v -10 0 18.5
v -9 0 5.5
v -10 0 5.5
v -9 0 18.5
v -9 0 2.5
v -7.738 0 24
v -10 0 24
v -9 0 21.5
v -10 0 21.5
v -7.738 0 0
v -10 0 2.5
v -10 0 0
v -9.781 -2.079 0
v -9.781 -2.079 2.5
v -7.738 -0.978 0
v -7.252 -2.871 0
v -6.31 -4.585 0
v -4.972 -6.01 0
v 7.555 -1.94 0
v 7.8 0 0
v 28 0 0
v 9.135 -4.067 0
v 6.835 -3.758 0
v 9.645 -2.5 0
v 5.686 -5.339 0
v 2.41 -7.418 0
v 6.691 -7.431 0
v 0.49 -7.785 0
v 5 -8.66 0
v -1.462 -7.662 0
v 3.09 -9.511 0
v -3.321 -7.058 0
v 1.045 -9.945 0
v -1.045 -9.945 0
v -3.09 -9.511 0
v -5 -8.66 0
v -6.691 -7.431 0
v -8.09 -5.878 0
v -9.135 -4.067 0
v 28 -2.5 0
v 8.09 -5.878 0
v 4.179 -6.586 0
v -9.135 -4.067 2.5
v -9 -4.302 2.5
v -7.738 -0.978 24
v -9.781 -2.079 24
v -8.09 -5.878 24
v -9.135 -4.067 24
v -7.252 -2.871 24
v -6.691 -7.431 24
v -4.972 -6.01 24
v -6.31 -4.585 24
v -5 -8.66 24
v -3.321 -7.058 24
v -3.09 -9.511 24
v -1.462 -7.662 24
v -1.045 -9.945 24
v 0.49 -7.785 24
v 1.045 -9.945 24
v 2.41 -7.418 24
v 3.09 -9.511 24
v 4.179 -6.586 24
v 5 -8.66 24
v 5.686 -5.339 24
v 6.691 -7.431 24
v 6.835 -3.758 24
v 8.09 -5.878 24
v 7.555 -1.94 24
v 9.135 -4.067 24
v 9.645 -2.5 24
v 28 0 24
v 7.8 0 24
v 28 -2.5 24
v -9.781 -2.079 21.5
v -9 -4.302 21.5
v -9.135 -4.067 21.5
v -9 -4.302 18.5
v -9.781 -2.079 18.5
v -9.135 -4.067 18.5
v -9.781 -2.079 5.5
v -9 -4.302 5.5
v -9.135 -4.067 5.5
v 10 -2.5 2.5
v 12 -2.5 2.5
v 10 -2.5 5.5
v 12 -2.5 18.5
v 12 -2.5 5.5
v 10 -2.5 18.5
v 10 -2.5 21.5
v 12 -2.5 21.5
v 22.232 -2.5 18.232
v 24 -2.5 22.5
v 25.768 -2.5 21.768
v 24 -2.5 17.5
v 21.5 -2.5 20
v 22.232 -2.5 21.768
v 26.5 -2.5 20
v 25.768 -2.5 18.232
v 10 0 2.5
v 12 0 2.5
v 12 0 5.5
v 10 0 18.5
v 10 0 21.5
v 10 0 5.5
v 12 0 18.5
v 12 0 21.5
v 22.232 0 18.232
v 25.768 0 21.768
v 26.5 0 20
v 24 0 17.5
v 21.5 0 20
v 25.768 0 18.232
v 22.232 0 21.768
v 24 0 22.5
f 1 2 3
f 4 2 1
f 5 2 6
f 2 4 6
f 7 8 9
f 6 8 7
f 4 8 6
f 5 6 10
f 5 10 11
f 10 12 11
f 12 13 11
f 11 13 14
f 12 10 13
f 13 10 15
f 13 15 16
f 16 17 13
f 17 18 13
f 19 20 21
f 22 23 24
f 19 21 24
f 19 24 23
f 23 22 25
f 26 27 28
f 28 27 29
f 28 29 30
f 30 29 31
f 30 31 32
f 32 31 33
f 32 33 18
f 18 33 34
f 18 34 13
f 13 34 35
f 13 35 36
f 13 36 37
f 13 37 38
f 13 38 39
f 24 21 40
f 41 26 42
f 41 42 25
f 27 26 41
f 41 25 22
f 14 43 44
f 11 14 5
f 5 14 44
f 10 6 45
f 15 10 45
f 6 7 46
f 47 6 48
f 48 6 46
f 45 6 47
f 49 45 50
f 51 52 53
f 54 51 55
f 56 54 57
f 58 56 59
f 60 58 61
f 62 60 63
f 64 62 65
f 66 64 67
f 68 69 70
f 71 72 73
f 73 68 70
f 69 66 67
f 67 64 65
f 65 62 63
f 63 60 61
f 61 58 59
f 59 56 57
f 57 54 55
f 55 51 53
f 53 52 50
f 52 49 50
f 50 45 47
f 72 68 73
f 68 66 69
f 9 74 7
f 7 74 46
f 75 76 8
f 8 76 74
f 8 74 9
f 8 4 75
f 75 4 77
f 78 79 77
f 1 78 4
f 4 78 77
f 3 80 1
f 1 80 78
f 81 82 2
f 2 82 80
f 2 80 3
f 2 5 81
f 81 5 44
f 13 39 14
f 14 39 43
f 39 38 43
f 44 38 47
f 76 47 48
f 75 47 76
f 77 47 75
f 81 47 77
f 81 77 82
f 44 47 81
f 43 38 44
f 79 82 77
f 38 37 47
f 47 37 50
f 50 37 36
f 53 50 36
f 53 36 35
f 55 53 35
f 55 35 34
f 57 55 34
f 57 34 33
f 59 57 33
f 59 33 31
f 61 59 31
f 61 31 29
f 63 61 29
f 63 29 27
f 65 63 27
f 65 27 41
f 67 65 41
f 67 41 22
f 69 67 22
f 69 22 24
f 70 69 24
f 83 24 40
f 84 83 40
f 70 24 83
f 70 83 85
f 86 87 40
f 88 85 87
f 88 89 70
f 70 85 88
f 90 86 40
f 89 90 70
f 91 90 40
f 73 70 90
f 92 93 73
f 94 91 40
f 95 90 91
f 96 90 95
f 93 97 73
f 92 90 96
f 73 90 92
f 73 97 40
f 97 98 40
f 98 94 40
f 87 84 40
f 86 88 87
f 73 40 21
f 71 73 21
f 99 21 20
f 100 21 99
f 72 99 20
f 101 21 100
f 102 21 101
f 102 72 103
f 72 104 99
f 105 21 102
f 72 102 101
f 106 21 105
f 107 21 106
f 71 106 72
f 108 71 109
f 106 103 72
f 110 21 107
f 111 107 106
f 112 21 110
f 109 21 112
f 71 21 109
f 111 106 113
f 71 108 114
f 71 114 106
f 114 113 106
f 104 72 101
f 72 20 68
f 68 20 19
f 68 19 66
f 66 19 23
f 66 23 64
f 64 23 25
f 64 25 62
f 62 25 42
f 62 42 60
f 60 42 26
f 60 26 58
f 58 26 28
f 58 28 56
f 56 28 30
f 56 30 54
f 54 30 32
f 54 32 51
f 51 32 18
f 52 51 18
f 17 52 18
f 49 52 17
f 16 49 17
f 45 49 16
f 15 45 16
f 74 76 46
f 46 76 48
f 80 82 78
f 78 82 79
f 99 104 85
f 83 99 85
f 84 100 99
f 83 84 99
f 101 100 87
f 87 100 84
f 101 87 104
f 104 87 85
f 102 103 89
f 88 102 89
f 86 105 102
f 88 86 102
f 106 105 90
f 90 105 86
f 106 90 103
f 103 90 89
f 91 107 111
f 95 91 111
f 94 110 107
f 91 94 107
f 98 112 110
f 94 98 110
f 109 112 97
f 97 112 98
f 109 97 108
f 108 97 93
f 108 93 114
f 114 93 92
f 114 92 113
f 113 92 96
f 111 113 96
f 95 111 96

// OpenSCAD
//coulisseau

difference() {
	union() {
		translate([0,-2.5,0]) cube([28,5,24]);
		translate([0,0,12]) cylinder(r=10,h=24,center=true);
	}
translate([0,0,12]) cylinder(r=7.8,h=32,center=true);
translate([-10,-0,-2]) cube([40,20,32]);
translate([10,-5,2.5]) cube([2,10,3]);
translate([10,-5,18.5]) cube([2,10,3]);

translate([-11,-5,2.5]) cube([2,10,3]);
translate([-11,-5,18.5]) cube([2,10,3]);

translate([24,6,20]) rotate([90,0,0]) cylinder(r=2.5,h=10); //trou fil
}
